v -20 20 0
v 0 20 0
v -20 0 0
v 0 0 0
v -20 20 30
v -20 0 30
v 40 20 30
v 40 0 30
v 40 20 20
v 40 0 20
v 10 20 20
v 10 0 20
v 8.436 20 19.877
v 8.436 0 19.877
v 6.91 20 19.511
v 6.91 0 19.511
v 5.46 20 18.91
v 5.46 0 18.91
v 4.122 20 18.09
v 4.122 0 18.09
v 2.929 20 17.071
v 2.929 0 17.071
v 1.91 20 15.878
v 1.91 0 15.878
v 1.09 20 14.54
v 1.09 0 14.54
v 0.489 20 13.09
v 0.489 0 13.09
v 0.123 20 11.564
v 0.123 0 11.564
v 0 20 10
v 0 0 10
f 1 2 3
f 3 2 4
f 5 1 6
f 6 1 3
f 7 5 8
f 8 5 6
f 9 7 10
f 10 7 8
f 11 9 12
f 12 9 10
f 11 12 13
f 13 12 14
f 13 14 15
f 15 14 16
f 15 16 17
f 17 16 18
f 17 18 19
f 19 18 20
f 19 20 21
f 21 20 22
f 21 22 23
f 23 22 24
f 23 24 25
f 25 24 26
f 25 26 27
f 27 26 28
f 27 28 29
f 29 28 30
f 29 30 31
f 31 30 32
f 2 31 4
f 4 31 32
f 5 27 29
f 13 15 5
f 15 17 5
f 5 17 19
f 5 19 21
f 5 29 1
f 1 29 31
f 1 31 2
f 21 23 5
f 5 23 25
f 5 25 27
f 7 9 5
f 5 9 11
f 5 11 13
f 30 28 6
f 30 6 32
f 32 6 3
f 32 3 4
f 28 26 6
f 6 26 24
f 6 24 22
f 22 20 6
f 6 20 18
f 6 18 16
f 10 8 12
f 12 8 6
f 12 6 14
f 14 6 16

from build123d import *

# Parameters (mm, degrees)
BOSS_EXTRUDE1_DEPTH = 20


with BuildPart() as part:
    # Sketch2 → Boss-Extrude1 (new body)
    with BuildSketch(Plane(origin=(0, 0, 0), x_dir=(1, 0, 0), z_dir=(0, 1, 0))):
        with BuildLine():
            Line((0, 0), (0, -10))
            ThreePointArc((0, -10), (2.928932188, -17.071067812), (10, -20))
            Line((10, -20), (40, -20))
            Line((40, -20), (40, -30))
            Line((40, -30), (-20, -30))
            Line((-20, -30), (-20, 0))
            Line((-20, 0), (0, 0))
        make_face()
    extrude(amount=BOSS_EXTRUDE1_DEPTH)


solid = part.part
